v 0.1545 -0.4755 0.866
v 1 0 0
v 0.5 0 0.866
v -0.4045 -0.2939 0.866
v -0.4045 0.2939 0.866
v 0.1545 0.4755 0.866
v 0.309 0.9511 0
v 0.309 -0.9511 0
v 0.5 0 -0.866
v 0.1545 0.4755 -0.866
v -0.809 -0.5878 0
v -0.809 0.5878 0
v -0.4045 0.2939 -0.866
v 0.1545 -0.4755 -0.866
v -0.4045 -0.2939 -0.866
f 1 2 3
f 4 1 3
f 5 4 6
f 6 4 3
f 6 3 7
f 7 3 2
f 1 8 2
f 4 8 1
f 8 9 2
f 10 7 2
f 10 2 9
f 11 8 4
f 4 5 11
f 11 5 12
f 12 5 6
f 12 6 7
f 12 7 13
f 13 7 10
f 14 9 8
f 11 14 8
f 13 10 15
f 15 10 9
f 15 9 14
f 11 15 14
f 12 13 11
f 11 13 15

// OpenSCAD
/*
 * OpenSCAD Workshop Examples
 * Copyright (c) 2013 Anar Software LLC. < http://anars.com >
 *
 * This program is free software: you can redistribute it and/or modify it under
 * the terms of the GNU General Public License as published by the Free Software
 * Foundation, either version 3 of the License, or (at your option) any later
 * version.
 *
 * This program is distributed in the hope that it will be useful, but WITHOUT
 * ANY WARRANTY; without even the implied warranty of MERCHANTABILITY or FITNESS
 * FOR A PARTICULAR PURPOSE. See the GNU General Public License for more details.
 *
 * You should have received a copy of the GNU General Public License along with
 * this program. If not, see < http://www.gnu.org/licenses/ >
 *
 */
/*

Creates 1 mm radius sphere.

*/

sphere();
